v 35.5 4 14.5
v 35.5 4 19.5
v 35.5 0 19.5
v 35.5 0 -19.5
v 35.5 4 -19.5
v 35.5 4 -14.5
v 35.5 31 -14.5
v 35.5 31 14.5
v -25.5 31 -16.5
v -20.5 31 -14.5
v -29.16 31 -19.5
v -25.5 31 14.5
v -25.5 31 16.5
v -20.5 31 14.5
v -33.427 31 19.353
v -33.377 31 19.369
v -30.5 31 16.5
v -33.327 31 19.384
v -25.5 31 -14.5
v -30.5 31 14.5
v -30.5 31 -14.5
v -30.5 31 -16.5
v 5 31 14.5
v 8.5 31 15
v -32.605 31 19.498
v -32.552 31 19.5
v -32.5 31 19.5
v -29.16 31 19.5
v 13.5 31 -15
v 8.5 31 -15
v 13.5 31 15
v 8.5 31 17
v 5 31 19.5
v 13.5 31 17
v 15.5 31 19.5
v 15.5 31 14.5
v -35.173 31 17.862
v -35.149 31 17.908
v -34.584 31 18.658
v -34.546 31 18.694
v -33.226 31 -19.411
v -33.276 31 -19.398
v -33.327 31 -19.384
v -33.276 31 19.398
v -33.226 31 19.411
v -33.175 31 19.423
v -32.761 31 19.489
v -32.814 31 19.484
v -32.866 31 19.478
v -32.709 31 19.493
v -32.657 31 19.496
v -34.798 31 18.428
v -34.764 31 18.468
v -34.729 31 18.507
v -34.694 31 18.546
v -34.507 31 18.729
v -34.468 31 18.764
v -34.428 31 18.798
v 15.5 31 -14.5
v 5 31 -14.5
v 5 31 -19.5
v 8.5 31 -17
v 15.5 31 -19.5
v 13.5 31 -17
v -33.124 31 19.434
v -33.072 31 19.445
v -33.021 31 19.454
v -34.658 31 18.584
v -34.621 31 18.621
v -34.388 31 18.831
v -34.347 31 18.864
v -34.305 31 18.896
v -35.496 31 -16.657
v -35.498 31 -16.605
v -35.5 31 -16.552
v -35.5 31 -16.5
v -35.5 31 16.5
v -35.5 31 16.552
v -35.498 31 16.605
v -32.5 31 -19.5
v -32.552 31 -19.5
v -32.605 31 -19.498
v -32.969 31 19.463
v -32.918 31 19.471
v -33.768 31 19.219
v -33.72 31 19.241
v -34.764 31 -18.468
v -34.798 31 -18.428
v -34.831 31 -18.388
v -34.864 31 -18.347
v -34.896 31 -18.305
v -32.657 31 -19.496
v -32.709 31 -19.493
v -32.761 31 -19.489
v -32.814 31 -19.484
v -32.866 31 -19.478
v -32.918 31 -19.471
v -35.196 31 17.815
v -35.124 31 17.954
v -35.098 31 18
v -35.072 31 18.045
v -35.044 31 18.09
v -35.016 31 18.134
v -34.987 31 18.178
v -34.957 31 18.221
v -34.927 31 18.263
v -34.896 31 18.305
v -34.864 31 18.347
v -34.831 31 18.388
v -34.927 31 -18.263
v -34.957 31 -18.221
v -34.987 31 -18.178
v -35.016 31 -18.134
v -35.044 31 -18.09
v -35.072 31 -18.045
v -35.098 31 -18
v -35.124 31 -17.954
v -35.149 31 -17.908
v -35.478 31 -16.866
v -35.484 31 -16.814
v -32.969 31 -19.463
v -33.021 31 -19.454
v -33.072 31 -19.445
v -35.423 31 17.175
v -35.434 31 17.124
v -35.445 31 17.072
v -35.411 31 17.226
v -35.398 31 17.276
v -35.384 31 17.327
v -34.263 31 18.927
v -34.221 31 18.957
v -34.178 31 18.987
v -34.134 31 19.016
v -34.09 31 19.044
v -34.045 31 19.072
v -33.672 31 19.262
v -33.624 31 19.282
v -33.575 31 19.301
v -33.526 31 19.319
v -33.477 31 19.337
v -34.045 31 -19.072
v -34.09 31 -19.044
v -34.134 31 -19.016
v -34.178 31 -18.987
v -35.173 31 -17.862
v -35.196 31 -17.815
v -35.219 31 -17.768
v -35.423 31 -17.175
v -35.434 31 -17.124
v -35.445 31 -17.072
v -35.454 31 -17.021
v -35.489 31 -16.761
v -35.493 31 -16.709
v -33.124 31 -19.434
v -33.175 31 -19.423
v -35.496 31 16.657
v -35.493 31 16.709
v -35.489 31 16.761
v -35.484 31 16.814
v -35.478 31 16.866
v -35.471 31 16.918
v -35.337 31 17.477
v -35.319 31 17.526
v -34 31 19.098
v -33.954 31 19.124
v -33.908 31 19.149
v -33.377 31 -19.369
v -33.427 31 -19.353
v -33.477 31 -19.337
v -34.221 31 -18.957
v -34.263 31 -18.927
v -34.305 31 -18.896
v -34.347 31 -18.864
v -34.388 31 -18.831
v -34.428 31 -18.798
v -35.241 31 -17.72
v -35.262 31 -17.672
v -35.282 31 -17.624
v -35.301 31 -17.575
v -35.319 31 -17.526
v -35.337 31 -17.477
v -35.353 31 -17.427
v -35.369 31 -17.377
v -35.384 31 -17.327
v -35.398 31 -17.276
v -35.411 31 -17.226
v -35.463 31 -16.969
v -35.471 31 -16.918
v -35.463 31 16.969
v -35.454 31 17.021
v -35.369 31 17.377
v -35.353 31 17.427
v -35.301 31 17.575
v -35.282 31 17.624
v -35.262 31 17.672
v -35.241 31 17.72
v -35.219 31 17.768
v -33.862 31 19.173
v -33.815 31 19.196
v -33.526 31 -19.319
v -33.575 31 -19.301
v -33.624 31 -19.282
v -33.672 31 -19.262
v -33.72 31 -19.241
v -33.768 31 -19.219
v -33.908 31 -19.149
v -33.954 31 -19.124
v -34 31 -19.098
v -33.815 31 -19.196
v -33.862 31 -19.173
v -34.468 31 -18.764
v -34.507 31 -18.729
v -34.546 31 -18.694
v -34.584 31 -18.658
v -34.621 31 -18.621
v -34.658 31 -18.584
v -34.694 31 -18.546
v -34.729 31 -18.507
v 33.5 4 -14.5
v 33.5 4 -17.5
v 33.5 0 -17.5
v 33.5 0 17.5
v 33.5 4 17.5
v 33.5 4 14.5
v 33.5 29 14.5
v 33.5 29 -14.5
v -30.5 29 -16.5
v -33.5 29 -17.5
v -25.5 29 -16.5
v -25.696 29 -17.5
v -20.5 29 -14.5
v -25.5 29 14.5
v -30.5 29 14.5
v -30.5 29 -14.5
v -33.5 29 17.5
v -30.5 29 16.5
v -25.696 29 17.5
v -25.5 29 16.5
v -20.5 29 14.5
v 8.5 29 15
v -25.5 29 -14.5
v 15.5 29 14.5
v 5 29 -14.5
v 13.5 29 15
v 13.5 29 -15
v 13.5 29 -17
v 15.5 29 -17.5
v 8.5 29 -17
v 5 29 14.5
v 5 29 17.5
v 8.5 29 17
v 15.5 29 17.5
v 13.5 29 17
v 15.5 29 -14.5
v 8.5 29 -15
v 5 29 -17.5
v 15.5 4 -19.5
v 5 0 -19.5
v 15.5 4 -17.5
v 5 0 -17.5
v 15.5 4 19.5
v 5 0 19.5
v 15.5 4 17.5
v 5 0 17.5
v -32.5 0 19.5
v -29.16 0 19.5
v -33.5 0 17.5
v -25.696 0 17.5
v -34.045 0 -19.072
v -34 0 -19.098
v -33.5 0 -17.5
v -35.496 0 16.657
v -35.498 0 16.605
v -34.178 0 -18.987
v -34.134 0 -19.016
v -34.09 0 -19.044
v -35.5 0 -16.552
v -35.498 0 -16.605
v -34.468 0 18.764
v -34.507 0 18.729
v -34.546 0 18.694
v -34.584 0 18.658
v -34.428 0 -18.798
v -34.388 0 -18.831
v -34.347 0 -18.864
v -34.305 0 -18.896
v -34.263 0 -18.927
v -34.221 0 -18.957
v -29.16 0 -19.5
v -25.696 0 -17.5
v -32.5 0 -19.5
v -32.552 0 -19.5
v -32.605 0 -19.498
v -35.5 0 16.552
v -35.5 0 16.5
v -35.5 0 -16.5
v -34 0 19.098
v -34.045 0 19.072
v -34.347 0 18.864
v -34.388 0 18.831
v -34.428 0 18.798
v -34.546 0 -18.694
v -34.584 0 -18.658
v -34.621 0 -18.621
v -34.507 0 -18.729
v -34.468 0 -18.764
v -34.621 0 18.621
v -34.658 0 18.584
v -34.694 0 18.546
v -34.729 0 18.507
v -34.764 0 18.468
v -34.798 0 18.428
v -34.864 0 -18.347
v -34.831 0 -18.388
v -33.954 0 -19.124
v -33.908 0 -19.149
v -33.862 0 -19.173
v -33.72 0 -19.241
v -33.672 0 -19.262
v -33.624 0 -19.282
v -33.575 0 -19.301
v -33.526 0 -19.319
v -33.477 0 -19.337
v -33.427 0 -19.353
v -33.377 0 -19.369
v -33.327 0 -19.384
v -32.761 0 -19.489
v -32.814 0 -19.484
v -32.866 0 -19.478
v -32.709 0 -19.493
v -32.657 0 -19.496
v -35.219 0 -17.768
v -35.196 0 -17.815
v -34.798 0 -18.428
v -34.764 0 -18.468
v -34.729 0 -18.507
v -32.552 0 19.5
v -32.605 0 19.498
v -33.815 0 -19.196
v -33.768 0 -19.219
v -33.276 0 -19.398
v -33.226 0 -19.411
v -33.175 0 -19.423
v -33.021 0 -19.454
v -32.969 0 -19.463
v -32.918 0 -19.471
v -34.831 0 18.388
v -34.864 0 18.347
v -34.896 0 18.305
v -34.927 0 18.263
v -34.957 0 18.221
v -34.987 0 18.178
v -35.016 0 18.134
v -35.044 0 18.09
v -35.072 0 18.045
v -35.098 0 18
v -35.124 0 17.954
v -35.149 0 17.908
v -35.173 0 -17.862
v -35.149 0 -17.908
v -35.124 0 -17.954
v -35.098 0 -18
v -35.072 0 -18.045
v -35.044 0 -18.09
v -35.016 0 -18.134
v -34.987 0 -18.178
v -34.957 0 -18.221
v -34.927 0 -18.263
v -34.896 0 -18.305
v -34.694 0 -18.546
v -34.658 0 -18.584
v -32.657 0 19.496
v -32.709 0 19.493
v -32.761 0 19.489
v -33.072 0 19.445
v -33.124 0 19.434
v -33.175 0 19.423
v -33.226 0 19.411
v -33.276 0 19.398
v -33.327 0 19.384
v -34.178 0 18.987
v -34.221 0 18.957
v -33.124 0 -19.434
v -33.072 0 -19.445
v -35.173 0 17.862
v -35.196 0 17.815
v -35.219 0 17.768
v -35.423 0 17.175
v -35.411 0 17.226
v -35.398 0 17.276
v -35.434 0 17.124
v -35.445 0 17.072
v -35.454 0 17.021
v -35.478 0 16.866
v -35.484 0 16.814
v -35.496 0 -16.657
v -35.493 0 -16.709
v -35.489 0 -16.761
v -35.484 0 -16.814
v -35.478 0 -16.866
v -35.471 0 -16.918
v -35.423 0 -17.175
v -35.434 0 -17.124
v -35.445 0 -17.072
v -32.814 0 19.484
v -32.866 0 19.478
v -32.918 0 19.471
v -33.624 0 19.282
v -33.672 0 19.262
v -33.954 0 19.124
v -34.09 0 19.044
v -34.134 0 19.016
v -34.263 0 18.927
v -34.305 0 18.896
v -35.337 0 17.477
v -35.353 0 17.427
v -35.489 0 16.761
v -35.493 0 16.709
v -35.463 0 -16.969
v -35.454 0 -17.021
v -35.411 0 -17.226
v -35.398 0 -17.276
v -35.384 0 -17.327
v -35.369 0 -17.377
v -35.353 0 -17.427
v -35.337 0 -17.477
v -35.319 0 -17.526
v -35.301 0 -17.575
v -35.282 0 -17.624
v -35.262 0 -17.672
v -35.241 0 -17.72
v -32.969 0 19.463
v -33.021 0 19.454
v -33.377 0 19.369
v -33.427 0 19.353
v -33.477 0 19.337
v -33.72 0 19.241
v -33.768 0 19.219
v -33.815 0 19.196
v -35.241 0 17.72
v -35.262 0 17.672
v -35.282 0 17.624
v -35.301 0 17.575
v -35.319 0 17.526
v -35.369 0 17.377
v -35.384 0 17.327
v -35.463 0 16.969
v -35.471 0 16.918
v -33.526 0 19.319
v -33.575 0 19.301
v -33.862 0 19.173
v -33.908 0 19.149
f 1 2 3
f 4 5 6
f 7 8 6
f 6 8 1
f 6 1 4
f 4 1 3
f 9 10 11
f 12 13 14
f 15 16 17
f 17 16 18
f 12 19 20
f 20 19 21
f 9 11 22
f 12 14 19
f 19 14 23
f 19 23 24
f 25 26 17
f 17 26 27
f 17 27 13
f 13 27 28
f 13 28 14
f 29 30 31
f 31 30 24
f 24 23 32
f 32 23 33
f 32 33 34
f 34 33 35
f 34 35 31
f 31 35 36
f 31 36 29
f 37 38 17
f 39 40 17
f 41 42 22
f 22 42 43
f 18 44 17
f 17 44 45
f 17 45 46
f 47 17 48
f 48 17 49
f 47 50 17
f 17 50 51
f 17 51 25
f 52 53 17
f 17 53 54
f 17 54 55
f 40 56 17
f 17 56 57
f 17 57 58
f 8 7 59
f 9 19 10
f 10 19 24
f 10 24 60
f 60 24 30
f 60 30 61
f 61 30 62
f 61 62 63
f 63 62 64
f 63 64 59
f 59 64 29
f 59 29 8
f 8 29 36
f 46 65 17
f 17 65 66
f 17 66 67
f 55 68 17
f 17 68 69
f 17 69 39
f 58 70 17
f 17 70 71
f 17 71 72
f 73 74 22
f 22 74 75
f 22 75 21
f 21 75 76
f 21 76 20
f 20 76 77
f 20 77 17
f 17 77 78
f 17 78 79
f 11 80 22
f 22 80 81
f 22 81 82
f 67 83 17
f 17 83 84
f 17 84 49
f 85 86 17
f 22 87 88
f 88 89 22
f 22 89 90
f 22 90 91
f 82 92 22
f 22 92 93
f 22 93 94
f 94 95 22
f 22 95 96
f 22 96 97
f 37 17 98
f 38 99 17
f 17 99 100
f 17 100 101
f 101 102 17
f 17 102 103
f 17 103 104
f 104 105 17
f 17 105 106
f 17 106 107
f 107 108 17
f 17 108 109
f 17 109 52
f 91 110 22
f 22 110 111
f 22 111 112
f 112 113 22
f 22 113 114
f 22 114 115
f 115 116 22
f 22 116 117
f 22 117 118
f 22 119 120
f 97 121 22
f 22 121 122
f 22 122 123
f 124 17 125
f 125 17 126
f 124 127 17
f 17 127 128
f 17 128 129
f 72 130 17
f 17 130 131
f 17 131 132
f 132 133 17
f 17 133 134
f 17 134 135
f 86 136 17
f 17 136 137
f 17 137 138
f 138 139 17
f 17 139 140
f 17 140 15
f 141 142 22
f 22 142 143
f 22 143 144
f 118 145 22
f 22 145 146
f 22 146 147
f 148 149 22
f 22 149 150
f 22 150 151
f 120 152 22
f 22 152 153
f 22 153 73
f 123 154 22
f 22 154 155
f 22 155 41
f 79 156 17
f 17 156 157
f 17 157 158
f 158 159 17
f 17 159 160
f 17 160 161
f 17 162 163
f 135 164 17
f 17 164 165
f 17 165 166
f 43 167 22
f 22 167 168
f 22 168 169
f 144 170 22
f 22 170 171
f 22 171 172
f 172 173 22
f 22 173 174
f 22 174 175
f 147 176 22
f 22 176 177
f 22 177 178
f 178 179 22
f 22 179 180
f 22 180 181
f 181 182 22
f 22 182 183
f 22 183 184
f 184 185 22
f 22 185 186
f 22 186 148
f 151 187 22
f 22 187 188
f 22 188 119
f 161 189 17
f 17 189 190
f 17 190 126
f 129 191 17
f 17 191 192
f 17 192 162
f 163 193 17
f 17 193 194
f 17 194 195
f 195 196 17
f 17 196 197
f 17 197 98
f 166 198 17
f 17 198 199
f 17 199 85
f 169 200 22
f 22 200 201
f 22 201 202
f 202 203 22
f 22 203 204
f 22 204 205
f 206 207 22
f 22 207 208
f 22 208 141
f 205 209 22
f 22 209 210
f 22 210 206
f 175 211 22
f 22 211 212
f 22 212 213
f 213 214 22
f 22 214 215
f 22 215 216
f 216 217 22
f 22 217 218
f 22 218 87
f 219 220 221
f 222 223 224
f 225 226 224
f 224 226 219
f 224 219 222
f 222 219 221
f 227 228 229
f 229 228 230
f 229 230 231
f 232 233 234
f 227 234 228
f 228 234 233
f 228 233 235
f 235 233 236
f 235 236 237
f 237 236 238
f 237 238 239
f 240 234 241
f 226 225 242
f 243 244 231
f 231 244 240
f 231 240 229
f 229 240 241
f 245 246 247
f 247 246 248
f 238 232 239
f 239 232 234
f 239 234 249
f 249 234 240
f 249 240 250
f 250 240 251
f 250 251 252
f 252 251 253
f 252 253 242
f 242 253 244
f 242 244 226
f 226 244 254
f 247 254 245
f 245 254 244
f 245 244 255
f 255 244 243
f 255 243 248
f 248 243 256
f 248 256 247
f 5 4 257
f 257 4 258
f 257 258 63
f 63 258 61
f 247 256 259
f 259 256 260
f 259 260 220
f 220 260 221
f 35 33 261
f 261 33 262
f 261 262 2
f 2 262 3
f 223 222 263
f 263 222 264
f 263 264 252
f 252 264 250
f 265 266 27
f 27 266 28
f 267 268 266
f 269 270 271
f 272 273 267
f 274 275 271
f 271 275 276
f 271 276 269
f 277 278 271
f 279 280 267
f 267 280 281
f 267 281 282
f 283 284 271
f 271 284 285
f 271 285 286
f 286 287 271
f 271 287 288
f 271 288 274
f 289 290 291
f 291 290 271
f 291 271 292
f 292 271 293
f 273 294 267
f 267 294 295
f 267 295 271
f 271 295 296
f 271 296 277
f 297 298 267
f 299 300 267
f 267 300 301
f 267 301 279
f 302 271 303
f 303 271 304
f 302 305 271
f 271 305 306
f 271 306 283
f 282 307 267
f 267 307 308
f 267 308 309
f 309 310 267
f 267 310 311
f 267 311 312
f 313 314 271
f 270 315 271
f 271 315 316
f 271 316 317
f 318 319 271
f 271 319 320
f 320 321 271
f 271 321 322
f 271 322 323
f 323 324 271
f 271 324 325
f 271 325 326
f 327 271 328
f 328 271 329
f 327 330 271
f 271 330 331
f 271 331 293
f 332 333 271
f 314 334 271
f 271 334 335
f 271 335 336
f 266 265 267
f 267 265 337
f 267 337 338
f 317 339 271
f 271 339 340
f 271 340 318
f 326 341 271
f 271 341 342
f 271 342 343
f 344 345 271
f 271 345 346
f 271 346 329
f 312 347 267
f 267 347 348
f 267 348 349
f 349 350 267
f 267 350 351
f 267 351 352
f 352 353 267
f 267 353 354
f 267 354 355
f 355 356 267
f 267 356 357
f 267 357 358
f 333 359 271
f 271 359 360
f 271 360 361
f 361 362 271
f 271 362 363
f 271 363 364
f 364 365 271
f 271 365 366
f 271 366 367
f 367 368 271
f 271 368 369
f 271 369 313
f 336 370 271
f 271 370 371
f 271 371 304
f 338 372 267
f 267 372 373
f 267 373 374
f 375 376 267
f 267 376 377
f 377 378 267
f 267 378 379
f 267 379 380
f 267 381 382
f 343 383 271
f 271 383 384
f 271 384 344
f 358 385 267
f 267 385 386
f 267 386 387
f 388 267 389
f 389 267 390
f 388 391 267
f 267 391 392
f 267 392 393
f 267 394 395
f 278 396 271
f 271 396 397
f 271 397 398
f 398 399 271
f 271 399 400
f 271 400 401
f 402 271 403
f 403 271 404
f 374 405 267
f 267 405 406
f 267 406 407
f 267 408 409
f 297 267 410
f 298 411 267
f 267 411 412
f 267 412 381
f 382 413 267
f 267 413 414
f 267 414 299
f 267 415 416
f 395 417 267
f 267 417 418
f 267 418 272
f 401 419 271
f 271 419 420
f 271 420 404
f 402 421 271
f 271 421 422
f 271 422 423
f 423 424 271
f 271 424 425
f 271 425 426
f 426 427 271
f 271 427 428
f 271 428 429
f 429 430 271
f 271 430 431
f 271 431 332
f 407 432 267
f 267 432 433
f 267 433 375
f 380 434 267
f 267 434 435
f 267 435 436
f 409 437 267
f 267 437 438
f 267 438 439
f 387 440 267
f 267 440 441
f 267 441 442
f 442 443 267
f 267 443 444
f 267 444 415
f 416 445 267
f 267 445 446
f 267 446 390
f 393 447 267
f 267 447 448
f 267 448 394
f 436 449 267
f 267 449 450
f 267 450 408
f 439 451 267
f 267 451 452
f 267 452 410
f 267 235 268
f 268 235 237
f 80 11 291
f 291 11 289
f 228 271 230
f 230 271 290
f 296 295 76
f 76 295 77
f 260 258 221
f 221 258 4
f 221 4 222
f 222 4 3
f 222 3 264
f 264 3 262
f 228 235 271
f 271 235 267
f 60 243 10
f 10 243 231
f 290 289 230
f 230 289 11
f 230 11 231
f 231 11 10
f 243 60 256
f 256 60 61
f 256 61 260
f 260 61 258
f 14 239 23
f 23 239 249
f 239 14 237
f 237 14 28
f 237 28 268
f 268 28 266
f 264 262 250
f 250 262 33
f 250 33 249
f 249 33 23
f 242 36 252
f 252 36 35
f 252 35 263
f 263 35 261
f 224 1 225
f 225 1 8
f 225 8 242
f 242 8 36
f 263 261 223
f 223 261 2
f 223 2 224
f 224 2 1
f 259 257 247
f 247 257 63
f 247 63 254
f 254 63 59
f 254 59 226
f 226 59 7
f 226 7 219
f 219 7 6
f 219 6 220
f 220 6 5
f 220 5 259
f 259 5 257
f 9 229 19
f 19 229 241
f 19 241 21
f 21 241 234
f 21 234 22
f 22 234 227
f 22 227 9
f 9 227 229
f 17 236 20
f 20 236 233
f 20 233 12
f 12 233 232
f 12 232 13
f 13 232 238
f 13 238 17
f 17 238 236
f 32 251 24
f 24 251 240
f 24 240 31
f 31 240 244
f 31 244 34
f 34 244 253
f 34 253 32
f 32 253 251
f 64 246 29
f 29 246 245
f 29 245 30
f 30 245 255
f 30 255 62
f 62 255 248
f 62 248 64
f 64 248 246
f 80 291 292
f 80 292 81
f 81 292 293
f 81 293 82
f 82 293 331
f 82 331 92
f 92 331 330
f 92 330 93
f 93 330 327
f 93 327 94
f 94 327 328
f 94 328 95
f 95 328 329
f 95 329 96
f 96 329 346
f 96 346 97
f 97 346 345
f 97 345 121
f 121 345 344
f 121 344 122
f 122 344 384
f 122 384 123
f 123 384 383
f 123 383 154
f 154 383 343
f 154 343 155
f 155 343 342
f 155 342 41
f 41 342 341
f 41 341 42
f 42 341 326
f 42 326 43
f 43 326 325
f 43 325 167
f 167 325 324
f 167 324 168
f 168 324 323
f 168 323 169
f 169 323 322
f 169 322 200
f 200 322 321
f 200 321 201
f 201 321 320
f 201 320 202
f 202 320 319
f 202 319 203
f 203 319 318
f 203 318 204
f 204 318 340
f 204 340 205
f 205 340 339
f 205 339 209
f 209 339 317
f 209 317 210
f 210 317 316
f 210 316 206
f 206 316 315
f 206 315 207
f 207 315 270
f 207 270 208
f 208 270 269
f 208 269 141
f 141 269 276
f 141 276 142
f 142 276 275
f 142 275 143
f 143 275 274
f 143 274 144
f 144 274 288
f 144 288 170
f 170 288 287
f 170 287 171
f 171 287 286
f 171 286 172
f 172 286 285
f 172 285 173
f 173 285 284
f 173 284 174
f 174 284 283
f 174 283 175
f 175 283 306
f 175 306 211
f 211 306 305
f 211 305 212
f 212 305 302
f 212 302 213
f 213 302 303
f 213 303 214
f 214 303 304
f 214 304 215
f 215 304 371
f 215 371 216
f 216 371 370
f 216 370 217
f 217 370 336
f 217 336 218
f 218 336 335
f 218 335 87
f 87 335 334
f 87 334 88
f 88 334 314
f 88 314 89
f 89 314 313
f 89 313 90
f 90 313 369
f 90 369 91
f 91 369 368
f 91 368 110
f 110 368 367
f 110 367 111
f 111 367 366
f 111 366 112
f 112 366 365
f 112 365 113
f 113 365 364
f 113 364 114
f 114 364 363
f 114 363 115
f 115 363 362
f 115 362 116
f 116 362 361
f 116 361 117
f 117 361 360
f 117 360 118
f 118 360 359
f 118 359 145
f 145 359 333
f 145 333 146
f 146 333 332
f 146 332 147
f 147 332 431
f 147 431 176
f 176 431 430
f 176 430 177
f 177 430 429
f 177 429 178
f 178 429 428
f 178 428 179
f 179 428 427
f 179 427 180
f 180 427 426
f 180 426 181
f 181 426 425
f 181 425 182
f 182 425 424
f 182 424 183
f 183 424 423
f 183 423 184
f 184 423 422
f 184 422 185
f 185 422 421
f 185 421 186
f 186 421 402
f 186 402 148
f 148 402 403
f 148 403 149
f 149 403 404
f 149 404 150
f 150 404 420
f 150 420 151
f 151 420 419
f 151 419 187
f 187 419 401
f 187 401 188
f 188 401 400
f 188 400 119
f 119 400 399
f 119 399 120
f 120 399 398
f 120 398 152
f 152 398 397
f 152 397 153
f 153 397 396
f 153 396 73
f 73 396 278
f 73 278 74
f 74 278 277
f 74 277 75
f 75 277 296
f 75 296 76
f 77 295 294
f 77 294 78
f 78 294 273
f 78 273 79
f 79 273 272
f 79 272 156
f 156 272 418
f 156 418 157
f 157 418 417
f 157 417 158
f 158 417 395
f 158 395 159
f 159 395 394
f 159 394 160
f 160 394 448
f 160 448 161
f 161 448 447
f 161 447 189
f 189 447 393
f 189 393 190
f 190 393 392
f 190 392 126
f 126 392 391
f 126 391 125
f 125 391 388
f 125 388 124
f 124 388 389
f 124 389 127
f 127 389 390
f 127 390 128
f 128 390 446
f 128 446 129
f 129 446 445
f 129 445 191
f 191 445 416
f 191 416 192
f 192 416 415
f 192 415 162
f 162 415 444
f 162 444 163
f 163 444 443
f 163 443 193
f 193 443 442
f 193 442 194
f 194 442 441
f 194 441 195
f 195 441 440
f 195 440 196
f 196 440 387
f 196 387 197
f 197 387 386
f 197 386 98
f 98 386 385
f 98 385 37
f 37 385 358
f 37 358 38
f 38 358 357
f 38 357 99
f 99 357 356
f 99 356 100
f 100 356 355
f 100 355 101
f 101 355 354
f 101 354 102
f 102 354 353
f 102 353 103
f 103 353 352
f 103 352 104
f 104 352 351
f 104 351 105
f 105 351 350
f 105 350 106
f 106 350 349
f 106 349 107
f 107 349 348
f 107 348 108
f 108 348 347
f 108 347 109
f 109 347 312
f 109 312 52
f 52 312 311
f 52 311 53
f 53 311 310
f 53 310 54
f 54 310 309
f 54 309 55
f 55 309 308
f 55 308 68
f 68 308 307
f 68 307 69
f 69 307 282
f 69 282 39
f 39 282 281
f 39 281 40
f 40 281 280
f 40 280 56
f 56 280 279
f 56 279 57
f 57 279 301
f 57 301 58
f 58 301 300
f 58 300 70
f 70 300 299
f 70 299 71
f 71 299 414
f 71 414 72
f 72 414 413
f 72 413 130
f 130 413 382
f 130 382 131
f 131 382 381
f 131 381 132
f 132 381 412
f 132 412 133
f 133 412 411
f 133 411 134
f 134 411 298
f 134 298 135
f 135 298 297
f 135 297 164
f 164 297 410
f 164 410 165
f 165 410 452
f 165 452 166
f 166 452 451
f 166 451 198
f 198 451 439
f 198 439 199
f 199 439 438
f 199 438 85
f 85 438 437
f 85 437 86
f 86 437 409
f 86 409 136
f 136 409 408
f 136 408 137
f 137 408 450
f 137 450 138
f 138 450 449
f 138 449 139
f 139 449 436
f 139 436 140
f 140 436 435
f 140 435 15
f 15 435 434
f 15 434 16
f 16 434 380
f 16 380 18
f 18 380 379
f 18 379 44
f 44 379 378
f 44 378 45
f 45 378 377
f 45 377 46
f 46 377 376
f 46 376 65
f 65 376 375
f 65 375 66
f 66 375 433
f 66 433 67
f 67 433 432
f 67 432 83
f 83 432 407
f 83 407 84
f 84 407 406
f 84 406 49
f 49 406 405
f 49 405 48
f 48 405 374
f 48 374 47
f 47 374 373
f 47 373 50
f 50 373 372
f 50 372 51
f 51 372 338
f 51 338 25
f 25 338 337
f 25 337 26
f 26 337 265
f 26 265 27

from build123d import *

# Parameters (mm, degrees)
SKETCH1_W           = 71
SKETCH1_H           = 39
BOSS_EXTRUDE1_DEPTH = 31
SHELL1_T            = -2
CUT_EXTRUDE1_DEPTH  = 52.004901725
SKETCH4_W           = 20
SKETCH4_H           = 5
CUT_EXTRUDE2_DEPTH  = 27
SKETCH5_W           = 5
SKETCH5_H           = 2
CUT_EXTRUDE3_DEPTH  = 52.004901725
FILLET2_R           = 3


with BuildPart() as part:
    # Sketch1 → Boss-Extrude1 (new body)
    with BuildSketch(Plane(origin=(0, 0, 0), x_dir=(1, 0, 0), z_dir=(0, 1, 0))):
        Rectangle(SKETCH1_W, SKETCH1_H)
    extrude(amount=BOSS_EXTRUDE1_DEPTH)

    # Shell1
    shell1_openings = [part.faces().sort_by_distance(p)[0] for p in [
        (0, 0, 0),
    ]]
    offset(amount=SHELL1_T, openings=shell1_openings, kind=Kind.INTERSECTION)

    # Sketch2 → Cut-Extrude1 (cut, through all)
    with BuildSketch(Plane(origin=(0, 31, 0), x_dir=(1, 0, 0), z_dir=(0, 1, 0))):
        Polygon((-29.160254038, 19.5), (5, 19.5), (5, 14.5), (-20.5, 14.5), align=None)
        Polygon((-20.5, -14.5), (5, -14.5), (5, -19.5), (-29.160254038, -19.5), align=None)
    extrude(amount=-CUT_EXTRUDE1_DEPTH, mode=Mode.SUBTRACT)

    # Sketch4 → Cut-Extrude2 (cut)
    with BuildSketch(Plane(origin=(0, 31, -31), x_dir=(1, 0, 0), z_dir=(0, -1, 0))):
        with Locations((25.5, 48)):
            Rectangle(SKETCH4_W, SKETCH4_H)
        with Locations((25.5, 14)):
            Rectangle(SKETCH4_W, SKETCH4_H)
    extrude(amount=CUT_EXTRUDE2_DEPTH, mode=Mode.SUBTRACT)

    # Sketch5 → Cut-Extrude3 (cut, through all)
    with BuildSketch(Plane(origin=(0, 31, 0), x_dir=(1, 0, 0), z_dir=(0, 1, 0))):
        with Locations((-28, 15.5)):
            Rectangle(SKETCH5_W, SKETCH5_H)
        with Locations((11, 16)):
            Rectangle(SKETCH5_W, SKETCH5_H)
        with Locations((11, -16)):
            Rectangle(SKETCH5_W, SKETCH5_H)
        with Locations((-28, -15.5)):
            Rectangle(SKETCH5_W, SKETCH5_H)
    extrude(amount=-CUT_EXTRUDE3_DEPTH, mode=Mode.SUBTRACT)

    # Fillet2
    fillet2_edges = [part.edges().sort_by_distance(p)[0] for p in [
        (-35.5, 15.5, 19.5),
        (-35.5, 15.5, -19.5),
    ]]
    fillet(fillet2_edges, radius=FILLET2_R)


solid = part.part
